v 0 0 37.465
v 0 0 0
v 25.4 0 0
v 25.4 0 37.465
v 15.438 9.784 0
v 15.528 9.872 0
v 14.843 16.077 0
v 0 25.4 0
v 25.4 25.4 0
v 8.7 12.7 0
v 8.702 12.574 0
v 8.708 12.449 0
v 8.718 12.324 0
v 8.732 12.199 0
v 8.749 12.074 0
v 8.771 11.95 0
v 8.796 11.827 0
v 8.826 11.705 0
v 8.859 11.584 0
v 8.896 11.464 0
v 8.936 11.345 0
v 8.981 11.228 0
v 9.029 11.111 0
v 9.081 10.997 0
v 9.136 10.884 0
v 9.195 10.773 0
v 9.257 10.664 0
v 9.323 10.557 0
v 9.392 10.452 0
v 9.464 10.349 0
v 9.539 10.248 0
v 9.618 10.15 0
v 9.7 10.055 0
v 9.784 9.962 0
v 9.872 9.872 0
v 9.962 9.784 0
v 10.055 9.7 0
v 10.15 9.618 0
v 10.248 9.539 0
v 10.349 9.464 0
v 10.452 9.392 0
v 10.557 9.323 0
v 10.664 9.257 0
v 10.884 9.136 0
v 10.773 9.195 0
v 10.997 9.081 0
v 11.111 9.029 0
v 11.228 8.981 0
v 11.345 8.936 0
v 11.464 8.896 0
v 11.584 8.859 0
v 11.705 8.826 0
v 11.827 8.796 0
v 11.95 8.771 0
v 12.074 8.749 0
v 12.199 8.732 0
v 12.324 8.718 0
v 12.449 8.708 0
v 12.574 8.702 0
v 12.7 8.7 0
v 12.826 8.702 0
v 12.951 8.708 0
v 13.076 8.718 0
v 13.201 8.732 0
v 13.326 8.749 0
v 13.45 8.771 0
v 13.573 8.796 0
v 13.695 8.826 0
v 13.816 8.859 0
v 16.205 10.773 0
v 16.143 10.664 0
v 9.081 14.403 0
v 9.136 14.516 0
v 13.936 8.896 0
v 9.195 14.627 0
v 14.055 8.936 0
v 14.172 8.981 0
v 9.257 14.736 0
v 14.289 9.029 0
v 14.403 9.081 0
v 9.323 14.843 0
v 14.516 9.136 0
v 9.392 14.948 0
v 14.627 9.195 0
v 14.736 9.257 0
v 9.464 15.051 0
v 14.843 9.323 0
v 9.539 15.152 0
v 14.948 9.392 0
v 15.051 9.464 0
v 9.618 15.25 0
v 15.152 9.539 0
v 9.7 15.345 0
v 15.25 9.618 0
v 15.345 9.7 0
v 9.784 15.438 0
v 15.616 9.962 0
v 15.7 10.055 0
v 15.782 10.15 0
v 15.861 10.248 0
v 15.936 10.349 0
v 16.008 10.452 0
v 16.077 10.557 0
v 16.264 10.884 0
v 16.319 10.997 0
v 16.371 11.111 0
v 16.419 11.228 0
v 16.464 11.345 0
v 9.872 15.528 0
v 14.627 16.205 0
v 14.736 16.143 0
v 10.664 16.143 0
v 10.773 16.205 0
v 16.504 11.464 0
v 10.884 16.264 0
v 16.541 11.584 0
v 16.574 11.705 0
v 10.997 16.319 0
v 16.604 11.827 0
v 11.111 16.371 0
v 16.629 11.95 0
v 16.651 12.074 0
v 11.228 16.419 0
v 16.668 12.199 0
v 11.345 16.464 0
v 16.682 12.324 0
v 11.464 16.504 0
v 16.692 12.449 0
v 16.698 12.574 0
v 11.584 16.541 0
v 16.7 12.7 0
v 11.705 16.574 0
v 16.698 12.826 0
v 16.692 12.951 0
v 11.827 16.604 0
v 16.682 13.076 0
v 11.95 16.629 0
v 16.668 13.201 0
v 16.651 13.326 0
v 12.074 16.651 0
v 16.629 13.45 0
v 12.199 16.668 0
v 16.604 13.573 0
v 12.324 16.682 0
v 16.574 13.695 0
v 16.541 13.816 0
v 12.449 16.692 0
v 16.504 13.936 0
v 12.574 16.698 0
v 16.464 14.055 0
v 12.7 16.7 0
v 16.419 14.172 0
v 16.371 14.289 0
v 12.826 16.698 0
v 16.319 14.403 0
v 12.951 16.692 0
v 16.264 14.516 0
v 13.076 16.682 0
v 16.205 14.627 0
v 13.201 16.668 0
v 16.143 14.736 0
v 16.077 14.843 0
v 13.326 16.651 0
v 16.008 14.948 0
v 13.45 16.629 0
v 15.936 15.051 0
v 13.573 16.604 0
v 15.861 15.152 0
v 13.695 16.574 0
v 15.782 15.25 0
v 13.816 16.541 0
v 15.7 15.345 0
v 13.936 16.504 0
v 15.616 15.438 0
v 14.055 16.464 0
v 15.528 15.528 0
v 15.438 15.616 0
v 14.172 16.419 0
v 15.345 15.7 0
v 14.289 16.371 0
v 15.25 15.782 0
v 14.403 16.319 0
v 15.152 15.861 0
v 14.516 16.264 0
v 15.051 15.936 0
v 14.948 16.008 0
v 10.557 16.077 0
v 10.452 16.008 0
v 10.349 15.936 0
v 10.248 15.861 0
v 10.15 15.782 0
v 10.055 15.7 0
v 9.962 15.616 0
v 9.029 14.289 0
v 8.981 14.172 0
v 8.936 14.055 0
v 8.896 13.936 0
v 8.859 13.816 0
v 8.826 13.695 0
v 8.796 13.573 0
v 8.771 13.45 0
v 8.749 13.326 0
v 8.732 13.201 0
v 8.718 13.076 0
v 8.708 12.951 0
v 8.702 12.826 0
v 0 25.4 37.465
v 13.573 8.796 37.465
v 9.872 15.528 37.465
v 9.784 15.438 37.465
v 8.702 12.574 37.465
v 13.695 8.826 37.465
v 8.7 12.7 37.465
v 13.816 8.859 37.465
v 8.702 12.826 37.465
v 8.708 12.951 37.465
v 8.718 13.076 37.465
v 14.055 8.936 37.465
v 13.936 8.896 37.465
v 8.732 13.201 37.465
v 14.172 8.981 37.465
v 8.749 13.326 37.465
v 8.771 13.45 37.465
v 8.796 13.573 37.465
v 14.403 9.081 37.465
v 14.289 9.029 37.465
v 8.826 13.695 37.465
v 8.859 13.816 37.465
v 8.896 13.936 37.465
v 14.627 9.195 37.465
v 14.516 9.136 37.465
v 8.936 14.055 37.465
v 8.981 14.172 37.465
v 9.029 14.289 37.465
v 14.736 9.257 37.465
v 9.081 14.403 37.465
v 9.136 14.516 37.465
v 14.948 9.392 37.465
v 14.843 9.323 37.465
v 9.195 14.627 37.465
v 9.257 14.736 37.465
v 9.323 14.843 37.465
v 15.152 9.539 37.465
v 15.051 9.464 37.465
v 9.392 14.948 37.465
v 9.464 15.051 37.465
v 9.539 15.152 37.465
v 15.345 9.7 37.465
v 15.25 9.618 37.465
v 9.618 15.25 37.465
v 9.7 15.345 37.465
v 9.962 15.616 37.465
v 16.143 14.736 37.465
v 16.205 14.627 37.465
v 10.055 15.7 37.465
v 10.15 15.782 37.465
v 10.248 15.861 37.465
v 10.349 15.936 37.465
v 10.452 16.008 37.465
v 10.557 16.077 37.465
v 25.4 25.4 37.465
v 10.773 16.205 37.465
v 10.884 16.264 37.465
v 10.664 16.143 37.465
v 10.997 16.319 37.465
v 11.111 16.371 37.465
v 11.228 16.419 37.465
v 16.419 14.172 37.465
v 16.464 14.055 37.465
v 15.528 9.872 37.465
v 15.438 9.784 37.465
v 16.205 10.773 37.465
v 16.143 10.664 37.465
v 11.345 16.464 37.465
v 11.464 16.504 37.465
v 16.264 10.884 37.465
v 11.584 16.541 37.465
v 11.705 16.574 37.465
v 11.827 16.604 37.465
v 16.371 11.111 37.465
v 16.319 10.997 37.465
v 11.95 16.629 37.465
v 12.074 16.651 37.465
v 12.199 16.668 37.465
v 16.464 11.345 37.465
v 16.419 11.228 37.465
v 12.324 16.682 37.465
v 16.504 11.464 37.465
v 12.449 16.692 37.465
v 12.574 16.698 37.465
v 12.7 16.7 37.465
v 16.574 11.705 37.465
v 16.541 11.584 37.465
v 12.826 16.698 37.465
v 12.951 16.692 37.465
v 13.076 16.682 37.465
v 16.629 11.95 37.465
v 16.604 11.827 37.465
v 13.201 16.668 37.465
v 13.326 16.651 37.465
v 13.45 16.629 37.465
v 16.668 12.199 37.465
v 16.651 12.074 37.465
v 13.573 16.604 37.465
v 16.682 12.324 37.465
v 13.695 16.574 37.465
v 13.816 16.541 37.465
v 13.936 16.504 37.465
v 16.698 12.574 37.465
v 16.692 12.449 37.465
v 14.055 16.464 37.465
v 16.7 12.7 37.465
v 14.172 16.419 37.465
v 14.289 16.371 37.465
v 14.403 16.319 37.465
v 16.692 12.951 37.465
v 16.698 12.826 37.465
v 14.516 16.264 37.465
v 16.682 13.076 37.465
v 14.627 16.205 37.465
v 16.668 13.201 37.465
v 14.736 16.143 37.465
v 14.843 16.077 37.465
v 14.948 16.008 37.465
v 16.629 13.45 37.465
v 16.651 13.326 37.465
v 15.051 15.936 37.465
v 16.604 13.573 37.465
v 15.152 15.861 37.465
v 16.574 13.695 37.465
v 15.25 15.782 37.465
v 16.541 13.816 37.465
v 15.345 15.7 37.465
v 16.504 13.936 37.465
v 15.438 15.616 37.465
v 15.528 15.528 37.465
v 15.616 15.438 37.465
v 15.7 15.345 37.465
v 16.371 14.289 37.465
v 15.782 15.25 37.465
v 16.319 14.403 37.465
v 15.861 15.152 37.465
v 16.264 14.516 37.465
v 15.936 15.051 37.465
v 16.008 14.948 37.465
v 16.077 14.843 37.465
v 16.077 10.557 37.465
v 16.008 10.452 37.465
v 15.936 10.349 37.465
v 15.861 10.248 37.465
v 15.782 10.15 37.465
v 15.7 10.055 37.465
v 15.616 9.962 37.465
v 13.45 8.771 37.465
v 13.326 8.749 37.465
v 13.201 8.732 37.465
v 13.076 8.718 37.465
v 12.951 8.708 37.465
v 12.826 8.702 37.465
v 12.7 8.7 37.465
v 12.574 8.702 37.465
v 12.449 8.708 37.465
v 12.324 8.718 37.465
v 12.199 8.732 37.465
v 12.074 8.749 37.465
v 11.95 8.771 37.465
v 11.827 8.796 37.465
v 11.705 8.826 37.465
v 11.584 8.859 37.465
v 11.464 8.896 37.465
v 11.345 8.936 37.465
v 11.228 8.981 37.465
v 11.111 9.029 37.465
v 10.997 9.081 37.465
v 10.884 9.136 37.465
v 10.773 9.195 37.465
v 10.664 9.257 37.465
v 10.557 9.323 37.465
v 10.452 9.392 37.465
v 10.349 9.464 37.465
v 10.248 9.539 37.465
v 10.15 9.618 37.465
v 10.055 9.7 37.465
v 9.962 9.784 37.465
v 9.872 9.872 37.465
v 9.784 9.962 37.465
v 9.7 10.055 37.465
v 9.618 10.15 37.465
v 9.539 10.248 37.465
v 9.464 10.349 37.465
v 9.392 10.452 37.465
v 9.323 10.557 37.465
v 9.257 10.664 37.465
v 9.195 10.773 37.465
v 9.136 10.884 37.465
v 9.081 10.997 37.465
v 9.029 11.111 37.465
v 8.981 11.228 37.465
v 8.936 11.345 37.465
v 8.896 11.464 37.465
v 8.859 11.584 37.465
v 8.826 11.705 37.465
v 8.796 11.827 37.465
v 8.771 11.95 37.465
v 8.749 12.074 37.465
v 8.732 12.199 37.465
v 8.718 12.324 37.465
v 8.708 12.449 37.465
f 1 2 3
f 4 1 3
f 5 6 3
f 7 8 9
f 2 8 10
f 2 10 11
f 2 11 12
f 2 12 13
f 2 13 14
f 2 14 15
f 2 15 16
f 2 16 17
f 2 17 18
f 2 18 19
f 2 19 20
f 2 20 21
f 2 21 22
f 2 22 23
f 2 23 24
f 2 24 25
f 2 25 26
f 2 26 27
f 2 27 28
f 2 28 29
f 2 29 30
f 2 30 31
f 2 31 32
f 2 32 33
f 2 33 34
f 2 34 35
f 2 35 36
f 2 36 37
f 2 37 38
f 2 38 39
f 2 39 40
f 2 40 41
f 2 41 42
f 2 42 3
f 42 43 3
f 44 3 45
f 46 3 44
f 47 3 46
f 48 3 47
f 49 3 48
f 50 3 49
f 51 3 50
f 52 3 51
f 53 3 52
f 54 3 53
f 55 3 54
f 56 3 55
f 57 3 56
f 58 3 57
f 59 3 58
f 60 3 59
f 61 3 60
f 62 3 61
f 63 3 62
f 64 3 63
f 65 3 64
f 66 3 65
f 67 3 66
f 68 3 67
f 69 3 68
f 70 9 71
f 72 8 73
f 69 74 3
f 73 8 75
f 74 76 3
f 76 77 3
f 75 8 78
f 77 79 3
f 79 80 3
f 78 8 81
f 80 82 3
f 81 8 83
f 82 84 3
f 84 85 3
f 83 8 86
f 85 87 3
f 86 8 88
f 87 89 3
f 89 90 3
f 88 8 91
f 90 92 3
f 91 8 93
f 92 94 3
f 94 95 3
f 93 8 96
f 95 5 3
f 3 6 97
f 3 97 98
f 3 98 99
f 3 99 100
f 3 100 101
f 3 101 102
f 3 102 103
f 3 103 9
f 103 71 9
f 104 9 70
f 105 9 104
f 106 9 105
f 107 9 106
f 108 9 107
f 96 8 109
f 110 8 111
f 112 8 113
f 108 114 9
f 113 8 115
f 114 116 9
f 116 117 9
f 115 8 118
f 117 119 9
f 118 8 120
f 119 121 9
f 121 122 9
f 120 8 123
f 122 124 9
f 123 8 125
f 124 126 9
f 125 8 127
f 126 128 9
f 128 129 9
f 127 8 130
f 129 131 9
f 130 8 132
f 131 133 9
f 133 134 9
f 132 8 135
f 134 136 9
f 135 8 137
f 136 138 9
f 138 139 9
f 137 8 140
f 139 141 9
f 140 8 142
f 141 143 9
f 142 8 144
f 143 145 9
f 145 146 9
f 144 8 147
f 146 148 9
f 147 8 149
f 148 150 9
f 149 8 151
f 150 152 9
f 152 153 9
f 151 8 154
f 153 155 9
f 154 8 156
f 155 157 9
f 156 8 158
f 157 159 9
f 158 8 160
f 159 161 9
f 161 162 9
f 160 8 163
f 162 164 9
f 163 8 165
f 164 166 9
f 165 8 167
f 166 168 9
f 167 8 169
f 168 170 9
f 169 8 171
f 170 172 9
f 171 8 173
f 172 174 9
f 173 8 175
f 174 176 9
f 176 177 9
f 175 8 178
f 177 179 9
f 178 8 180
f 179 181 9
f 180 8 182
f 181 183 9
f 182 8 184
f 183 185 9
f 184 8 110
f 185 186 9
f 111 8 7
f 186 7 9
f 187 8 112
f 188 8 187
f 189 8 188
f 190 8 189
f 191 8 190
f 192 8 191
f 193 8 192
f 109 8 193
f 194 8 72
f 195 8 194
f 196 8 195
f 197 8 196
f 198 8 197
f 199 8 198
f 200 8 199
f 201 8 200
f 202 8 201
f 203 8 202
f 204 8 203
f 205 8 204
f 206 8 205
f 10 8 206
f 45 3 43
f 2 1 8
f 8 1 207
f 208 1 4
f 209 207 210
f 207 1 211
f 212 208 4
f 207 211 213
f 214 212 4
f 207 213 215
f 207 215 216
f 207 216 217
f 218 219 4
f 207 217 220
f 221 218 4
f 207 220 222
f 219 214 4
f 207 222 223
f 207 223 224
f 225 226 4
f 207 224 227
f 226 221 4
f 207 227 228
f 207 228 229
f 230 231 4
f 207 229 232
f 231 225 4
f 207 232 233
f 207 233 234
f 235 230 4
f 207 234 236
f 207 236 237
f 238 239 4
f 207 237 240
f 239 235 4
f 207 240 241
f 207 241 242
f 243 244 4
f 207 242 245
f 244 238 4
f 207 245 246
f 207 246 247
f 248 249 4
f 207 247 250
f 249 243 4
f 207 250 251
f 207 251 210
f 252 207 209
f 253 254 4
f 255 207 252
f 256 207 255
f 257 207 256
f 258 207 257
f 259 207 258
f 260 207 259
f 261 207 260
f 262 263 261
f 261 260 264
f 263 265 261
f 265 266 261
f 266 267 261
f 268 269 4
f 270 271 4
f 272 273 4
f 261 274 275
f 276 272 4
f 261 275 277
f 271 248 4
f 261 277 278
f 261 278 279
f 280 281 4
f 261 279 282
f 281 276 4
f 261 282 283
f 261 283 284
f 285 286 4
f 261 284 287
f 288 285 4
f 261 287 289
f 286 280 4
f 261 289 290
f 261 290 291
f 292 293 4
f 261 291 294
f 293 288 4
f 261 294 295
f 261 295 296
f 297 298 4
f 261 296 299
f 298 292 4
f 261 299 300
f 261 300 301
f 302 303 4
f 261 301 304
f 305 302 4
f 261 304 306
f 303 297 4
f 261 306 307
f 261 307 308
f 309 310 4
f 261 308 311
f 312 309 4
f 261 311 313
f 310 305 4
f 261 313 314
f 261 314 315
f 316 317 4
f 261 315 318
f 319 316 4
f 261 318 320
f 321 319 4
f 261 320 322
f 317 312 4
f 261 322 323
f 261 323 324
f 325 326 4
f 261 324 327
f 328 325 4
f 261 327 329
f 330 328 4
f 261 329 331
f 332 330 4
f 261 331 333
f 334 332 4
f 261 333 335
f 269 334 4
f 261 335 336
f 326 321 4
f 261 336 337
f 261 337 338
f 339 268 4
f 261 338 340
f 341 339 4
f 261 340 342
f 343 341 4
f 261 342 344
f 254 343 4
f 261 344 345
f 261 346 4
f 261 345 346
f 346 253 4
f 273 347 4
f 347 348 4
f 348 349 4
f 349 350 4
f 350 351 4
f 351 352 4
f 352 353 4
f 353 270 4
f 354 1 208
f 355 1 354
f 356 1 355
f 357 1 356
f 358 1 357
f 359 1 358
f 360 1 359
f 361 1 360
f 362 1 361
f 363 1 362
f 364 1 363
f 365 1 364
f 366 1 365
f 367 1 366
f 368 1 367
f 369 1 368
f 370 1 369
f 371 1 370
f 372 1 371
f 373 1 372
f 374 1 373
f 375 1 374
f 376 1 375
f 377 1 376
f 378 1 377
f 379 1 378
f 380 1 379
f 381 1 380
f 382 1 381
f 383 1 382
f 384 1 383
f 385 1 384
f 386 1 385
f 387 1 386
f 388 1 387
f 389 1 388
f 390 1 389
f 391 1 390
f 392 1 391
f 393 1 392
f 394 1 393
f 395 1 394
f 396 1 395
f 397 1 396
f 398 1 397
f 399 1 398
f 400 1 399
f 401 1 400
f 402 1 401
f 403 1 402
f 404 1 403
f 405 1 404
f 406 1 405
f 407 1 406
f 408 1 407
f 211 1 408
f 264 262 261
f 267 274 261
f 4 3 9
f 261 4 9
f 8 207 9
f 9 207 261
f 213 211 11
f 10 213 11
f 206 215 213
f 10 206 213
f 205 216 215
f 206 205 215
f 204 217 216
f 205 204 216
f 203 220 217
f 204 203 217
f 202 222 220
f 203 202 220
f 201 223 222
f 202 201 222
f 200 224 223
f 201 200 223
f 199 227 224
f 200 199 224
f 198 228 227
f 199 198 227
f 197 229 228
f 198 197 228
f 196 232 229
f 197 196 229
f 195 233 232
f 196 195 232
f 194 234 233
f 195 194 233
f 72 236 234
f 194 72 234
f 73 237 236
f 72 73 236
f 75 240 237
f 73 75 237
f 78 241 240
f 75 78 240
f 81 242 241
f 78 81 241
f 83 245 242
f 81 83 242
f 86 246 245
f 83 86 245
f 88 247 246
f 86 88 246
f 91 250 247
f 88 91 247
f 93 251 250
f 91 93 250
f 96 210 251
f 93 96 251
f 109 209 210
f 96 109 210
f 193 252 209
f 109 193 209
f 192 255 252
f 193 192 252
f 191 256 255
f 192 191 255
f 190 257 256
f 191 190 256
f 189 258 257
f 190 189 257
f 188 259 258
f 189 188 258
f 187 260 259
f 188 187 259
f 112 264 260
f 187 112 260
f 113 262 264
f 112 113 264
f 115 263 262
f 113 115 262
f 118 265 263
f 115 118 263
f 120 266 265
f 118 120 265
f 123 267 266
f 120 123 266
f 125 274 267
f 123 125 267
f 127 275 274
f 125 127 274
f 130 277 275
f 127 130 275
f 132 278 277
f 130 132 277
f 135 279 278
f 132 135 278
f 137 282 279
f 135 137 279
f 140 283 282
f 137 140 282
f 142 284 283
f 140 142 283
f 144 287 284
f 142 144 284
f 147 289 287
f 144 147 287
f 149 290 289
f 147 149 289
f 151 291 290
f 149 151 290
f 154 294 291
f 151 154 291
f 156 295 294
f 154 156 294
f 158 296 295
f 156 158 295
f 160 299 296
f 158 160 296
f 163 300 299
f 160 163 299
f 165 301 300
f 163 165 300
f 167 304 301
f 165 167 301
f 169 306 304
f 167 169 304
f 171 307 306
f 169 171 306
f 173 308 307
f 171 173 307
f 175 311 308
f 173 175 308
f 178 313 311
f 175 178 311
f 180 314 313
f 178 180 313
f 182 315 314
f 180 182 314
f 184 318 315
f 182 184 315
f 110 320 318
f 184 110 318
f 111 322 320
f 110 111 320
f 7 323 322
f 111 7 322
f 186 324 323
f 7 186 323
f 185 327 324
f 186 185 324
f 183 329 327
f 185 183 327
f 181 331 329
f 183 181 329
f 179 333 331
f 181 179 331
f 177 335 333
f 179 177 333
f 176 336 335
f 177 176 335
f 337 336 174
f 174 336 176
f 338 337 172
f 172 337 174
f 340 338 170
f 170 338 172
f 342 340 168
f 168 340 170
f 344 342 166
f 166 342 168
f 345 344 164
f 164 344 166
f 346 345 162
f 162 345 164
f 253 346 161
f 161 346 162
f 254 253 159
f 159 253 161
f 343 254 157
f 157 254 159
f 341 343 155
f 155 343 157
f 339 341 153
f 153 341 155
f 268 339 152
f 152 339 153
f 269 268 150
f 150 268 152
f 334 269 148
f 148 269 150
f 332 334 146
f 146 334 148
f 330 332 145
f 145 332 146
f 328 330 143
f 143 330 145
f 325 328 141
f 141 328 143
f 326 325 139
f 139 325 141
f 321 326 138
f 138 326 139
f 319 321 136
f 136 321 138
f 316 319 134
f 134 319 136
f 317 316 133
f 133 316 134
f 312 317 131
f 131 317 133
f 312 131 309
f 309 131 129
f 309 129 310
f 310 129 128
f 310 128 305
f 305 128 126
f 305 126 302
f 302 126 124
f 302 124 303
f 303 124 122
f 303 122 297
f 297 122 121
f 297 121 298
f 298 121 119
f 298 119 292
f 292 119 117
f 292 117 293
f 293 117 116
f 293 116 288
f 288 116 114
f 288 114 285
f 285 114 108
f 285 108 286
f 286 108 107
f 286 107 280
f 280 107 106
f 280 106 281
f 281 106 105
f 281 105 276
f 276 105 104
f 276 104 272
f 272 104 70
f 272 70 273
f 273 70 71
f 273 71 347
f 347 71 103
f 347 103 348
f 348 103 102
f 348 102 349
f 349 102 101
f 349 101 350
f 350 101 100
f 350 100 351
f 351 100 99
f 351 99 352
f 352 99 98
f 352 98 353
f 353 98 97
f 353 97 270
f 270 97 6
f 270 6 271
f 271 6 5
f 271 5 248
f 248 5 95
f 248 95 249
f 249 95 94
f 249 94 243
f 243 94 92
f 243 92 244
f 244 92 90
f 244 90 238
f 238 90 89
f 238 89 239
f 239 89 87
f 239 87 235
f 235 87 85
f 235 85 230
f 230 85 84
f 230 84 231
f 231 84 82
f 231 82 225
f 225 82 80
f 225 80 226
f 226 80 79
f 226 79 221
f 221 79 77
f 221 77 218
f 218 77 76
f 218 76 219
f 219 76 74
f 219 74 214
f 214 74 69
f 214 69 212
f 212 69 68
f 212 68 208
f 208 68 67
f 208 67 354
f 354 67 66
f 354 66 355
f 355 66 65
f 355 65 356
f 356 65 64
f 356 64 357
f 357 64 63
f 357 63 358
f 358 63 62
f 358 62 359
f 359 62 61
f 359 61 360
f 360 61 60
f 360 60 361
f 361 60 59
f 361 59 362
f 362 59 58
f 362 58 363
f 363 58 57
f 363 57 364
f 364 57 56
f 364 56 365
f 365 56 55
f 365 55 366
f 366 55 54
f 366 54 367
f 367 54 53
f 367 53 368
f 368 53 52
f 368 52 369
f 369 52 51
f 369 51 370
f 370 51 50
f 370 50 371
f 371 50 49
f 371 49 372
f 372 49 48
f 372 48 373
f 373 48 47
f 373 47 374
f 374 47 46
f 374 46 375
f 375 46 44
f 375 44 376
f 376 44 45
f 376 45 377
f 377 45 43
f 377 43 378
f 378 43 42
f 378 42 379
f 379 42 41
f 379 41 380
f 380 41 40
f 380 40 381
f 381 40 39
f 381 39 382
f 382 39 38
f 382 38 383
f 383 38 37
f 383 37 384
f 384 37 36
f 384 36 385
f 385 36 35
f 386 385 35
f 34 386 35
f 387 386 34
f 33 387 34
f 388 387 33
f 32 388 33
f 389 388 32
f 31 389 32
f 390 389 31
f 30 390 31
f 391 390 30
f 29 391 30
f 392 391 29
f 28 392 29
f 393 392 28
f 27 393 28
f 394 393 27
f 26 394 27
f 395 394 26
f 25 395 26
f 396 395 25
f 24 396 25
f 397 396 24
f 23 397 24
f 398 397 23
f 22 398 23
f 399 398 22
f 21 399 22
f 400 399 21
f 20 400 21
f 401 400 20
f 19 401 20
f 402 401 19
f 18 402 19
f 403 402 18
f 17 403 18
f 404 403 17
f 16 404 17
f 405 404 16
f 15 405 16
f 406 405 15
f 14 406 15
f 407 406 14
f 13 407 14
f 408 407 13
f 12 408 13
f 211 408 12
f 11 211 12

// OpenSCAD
width = 25.4;
depth = 25.4 * 1;
height = 1.475 * 25.4;
bolt = 8;

#difference()
{
linear_extrude(height = height )
{
	polygon(points=[[0, 0],[width, 0],[width, depth], [0, depth]]);

}

linear_extrude(height = height)
{
	translate([width/2, depth/2,0])
	{
		circle($fn = 200, r = bolt/2);
	}
}
}
